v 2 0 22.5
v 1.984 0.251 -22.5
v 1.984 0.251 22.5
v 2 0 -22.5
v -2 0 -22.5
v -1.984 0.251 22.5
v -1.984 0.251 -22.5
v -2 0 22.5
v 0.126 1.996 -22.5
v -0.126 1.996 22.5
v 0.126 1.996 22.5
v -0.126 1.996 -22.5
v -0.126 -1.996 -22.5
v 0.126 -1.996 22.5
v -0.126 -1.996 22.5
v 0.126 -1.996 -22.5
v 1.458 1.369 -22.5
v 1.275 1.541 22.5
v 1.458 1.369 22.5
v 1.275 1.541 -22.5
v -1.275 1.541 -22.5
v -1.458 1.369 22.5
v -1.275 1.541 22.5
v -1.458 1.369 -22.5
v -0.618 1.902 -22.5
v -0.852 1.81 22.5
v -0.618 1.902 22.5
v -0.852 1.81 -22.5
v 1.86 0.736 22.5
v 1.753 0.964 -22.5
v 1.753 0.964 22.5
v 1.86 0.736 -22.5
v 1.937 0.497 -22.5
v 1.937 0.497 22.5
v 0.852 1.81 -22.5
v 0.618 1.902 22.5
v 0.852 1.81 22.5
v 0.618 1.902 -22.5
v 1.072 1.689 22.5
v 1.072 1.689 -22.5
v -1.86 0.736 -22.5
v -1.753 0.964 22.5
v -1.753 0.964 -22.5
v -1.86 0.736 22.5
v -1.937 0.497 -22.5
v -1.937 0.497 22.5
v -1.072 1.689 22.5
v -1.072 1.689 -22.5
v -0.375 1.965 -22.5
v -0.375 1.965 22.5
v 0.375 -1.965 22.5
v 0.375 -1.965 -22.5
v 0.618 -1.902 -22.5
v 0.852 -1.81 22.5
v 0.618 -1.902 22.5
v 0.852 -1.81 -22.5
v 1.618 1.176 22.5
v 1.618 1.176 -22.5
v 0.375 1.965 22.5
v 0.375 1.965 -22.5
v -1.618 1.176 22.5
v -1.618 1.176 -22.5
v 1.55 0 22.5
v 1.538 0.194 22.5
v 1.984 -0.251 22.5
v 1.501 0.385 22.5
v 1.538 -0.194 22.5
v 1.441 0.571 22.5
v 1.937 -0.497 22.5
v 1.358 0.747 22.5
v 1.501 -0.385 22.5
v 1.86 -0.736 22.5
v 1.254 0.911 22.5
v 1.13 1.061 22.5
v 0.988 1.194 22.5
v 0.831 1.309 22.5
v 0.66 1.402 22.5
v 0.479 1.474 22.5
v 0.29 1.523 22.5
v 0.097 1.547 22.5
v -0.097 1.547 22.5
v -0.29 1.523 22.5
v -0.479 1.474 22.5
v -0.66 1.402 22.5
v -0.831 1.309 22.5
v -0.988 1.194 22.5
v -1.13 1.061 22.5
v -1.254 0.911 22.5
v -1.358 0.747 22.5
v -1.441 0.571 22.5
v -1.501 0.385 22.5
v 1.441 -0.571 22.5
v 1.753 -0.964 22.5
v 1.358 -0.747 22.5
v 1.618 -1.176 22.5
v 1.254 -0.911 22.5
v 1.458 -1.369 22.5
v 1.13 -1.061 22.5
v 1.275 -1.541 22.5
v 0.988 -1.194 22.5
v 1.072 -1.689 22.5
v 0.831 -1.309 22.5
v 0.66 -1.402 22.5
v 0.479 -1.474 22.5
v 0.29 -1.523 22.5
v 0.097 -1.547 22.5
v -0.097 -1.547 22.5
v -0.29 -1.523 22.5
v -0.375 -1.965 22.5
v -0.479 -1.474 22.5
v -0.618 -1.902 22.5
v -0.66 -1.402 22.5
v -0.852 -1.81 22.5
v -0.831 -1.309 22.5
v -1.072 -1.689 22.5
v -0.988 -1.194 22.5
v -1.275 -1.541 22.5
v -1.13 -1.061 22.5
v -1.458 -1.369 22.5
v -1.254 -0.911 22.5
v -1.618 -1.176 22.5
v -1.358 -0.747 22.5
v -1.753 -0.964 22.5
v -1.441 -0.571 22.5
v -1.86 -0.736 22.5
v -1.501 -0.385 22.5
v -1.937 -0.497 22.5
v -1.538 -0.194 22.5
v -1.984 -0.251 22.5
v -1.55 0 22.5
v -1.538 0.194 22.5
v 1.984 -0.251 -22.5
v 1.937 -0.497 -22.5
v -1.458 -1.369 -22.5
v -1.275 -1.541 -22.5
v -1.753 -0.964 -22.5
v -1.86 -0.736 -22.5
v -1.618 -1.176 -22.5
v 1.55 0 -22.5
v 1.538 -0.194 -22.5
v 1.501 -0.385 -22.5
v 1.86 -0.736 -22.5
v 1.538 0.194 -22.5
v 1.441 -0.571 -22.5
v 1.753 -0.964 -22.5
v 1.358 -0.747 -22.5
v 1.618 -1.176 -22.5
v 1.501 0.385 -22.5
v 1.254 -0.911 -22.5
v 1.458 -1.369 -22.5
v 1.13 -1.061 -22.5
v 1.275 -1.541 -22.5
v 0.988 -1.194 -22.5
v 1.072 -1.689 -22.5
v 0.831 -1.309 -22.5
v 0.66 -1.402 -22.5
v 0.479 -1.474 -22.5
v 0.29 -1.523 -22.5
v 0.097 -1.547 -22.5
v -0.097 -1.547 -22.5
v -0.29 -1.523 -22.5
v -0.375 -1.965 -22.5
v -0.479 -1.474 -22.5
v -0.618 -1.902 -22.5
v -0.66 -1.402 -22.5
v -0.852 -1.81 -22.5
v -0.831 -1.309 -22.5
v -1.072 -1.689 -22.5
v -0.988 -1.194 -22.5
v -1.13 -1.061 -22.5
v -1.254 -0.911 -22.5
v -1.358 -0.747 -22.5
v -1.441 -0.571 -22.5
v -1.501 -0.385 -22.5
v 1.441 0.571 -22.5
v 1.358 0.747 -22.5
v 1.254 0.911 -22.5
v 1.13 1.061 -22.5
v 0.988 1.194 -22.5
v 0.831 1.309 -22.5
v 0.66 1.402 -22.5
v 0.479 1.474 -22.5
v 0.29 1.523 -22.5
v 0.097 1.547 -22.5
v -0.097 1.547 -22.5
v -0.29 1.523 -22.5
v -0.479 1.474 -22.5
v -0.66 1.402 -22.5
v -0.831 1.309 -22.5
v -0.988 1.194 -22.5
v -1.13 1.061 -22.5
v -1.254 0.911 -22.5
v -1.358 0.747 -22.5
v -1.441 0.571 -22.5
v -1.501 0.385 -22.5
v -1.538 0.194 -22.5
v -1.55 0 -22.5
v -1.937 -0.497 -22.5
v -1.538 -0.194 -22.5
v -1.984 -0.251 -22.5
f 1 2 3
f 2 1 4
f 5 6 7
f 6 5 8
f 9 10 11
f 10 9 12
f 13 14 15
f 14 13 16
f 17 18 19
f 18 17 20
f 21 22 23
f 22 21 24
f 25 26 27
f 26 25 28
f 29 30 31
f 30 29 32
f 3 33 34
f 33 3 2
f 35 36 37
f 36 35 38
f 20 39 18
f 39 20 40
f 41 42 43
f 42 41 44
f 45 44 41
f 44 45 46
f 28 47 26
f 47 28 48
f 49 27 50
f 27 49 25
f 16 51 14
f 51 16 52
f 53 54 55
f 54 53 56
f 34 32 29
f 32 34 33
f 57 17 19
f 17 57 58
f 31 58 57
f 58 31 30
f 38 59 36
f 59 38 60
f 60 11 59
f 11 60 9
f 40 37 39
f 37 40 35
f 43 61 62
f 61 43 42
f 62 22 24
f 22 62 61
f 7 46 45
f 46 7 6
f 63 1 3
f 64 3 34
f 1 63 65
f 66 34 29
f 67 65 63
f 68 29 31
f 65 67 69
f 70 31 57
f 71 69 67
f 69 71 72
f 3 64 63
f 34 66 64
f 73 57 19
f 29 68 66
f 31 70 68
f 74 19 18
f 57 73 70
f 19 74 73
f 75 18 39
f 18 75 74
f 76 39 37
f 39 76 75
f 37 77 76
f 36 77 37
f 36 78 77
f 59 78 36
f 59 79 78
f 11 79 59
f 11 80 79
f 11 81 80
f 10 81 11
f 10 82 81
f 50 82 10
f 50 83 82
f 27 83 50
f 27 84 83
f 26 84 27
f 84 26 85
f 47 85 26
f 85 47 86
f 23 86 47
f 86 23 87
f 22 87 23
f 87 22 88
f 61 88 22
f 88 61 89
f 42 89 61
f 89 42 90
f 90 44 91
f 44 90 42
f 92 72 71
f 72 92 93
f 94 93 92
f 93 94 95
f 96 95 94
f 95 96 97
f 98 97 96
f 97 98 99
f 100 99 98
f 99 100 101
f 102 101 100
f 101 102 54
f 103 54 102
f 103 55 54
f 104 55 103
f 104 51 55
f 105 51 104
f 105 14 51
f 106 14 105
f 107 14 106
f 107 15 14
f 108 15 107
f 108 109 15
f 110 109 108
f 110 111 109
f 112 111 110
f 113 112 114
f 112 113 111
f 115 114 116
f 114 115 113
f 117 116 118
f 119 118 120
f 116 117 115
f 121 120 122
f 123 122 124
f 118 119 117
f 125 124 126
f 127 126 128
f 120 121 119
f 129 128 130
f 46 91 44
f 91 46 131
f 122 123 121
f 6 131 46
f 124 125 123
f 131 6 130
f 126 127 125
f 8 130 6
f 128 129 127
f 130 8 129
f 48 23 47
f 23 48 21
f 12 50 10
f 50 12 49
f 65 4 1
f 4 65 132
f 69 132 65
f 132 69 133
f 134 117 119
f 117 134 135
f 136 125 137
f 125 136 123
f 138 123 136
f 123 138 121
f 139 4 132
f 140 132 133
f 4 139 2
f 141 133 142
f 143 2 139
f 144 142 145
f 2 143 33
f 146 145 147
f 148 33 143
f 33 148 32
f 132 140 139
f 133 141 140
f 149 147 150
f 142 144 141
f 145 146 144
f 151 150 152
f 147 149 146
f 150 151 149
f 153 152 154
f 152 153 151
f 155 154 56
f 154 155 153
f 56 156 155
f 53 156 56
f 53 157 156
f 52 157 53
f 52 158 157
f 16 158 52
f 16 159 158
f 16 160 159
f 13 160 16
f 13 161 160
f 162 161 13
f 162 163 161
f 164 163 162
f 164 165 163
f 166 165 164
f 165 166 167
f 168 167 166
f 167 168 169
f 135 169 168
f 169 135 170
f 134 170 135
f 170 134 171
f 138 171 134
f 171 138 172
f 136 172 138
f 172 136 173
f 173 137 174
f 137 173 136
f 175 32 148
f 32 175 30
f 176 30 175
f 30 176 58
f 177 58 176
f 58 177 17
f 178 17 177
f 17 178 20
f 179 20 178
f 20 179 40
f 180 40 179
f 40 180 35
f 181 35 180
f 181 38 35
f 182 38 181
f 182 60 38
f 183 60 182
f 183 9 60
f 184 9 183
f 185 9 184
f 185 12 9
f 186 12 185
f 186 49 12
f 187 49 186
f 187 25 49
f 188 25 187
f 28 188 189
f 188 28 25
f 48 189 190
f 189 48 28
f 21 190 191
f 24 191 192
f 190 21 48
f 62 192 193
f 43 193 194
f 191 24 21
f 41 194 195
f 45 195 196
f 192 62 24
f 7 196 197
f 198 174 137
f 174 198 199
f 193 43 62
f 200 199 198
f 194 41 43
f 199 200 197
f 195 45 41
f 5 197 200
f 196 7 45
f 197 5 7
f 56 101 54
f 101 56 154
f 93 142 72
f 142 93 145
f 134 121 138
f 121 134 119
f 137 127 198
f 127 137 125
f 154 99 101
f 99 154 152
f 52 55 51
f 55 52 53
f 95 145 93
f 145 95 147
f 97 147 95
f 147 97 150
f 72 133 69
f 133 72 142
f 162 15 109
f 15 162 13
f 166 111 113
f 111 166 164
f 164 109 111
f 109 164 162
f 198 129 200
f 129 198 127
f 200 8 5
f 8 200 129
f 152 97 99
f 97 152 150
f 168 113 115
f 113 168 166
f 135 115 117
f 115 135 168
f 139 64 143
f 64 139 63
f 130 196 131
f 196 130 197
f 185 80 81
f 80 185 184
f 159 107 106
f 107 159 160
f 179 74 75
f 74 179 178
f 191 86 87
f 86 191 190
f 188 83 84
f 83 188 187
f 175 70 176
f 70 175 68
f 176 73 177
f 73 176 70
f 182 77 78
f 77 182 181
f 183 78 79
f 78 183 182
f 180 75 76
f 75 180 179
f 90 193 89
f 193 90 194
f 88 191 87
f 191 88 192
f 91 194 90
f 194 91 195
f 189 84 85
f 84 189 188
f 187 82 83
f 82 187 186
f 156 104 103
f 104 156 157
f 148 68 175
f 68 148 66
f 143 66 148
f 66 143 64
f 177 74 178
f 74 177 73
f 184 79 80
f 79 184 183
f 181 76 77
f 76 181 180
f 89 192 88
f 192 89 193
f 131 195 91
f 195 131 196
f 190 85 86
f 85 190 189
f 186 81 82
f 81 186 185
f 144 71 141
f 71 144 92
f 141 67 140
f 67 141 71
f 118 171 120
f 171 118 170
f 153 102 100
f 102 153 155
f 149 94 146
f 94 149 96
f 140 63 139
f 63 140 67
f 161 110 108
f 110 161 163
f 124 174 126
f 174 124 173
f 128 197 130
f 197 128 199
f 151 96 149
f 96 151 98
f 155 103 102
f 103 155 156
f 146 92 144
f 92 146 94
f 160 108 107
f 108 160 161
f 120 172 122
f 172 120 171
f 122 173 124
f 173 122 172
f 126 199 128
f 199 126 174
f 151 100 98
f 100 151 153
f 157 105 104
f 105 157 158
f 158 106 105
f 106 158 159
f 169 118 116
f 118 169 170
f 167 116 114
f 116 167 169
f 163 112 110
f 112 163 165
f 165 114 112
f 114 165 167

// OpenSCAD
$fn = 50;


difference() {
	union() {
		translate(v = [0, 0, -22.5000000000]) {
			cylinder(h = 45, r = 2.0000000000);
		}
	}
	union() {
		translate(v = [0, 0, -100.0000000000]) {
			cylinder(h = 200, r = 1.5500000000);
		}
	}
}
